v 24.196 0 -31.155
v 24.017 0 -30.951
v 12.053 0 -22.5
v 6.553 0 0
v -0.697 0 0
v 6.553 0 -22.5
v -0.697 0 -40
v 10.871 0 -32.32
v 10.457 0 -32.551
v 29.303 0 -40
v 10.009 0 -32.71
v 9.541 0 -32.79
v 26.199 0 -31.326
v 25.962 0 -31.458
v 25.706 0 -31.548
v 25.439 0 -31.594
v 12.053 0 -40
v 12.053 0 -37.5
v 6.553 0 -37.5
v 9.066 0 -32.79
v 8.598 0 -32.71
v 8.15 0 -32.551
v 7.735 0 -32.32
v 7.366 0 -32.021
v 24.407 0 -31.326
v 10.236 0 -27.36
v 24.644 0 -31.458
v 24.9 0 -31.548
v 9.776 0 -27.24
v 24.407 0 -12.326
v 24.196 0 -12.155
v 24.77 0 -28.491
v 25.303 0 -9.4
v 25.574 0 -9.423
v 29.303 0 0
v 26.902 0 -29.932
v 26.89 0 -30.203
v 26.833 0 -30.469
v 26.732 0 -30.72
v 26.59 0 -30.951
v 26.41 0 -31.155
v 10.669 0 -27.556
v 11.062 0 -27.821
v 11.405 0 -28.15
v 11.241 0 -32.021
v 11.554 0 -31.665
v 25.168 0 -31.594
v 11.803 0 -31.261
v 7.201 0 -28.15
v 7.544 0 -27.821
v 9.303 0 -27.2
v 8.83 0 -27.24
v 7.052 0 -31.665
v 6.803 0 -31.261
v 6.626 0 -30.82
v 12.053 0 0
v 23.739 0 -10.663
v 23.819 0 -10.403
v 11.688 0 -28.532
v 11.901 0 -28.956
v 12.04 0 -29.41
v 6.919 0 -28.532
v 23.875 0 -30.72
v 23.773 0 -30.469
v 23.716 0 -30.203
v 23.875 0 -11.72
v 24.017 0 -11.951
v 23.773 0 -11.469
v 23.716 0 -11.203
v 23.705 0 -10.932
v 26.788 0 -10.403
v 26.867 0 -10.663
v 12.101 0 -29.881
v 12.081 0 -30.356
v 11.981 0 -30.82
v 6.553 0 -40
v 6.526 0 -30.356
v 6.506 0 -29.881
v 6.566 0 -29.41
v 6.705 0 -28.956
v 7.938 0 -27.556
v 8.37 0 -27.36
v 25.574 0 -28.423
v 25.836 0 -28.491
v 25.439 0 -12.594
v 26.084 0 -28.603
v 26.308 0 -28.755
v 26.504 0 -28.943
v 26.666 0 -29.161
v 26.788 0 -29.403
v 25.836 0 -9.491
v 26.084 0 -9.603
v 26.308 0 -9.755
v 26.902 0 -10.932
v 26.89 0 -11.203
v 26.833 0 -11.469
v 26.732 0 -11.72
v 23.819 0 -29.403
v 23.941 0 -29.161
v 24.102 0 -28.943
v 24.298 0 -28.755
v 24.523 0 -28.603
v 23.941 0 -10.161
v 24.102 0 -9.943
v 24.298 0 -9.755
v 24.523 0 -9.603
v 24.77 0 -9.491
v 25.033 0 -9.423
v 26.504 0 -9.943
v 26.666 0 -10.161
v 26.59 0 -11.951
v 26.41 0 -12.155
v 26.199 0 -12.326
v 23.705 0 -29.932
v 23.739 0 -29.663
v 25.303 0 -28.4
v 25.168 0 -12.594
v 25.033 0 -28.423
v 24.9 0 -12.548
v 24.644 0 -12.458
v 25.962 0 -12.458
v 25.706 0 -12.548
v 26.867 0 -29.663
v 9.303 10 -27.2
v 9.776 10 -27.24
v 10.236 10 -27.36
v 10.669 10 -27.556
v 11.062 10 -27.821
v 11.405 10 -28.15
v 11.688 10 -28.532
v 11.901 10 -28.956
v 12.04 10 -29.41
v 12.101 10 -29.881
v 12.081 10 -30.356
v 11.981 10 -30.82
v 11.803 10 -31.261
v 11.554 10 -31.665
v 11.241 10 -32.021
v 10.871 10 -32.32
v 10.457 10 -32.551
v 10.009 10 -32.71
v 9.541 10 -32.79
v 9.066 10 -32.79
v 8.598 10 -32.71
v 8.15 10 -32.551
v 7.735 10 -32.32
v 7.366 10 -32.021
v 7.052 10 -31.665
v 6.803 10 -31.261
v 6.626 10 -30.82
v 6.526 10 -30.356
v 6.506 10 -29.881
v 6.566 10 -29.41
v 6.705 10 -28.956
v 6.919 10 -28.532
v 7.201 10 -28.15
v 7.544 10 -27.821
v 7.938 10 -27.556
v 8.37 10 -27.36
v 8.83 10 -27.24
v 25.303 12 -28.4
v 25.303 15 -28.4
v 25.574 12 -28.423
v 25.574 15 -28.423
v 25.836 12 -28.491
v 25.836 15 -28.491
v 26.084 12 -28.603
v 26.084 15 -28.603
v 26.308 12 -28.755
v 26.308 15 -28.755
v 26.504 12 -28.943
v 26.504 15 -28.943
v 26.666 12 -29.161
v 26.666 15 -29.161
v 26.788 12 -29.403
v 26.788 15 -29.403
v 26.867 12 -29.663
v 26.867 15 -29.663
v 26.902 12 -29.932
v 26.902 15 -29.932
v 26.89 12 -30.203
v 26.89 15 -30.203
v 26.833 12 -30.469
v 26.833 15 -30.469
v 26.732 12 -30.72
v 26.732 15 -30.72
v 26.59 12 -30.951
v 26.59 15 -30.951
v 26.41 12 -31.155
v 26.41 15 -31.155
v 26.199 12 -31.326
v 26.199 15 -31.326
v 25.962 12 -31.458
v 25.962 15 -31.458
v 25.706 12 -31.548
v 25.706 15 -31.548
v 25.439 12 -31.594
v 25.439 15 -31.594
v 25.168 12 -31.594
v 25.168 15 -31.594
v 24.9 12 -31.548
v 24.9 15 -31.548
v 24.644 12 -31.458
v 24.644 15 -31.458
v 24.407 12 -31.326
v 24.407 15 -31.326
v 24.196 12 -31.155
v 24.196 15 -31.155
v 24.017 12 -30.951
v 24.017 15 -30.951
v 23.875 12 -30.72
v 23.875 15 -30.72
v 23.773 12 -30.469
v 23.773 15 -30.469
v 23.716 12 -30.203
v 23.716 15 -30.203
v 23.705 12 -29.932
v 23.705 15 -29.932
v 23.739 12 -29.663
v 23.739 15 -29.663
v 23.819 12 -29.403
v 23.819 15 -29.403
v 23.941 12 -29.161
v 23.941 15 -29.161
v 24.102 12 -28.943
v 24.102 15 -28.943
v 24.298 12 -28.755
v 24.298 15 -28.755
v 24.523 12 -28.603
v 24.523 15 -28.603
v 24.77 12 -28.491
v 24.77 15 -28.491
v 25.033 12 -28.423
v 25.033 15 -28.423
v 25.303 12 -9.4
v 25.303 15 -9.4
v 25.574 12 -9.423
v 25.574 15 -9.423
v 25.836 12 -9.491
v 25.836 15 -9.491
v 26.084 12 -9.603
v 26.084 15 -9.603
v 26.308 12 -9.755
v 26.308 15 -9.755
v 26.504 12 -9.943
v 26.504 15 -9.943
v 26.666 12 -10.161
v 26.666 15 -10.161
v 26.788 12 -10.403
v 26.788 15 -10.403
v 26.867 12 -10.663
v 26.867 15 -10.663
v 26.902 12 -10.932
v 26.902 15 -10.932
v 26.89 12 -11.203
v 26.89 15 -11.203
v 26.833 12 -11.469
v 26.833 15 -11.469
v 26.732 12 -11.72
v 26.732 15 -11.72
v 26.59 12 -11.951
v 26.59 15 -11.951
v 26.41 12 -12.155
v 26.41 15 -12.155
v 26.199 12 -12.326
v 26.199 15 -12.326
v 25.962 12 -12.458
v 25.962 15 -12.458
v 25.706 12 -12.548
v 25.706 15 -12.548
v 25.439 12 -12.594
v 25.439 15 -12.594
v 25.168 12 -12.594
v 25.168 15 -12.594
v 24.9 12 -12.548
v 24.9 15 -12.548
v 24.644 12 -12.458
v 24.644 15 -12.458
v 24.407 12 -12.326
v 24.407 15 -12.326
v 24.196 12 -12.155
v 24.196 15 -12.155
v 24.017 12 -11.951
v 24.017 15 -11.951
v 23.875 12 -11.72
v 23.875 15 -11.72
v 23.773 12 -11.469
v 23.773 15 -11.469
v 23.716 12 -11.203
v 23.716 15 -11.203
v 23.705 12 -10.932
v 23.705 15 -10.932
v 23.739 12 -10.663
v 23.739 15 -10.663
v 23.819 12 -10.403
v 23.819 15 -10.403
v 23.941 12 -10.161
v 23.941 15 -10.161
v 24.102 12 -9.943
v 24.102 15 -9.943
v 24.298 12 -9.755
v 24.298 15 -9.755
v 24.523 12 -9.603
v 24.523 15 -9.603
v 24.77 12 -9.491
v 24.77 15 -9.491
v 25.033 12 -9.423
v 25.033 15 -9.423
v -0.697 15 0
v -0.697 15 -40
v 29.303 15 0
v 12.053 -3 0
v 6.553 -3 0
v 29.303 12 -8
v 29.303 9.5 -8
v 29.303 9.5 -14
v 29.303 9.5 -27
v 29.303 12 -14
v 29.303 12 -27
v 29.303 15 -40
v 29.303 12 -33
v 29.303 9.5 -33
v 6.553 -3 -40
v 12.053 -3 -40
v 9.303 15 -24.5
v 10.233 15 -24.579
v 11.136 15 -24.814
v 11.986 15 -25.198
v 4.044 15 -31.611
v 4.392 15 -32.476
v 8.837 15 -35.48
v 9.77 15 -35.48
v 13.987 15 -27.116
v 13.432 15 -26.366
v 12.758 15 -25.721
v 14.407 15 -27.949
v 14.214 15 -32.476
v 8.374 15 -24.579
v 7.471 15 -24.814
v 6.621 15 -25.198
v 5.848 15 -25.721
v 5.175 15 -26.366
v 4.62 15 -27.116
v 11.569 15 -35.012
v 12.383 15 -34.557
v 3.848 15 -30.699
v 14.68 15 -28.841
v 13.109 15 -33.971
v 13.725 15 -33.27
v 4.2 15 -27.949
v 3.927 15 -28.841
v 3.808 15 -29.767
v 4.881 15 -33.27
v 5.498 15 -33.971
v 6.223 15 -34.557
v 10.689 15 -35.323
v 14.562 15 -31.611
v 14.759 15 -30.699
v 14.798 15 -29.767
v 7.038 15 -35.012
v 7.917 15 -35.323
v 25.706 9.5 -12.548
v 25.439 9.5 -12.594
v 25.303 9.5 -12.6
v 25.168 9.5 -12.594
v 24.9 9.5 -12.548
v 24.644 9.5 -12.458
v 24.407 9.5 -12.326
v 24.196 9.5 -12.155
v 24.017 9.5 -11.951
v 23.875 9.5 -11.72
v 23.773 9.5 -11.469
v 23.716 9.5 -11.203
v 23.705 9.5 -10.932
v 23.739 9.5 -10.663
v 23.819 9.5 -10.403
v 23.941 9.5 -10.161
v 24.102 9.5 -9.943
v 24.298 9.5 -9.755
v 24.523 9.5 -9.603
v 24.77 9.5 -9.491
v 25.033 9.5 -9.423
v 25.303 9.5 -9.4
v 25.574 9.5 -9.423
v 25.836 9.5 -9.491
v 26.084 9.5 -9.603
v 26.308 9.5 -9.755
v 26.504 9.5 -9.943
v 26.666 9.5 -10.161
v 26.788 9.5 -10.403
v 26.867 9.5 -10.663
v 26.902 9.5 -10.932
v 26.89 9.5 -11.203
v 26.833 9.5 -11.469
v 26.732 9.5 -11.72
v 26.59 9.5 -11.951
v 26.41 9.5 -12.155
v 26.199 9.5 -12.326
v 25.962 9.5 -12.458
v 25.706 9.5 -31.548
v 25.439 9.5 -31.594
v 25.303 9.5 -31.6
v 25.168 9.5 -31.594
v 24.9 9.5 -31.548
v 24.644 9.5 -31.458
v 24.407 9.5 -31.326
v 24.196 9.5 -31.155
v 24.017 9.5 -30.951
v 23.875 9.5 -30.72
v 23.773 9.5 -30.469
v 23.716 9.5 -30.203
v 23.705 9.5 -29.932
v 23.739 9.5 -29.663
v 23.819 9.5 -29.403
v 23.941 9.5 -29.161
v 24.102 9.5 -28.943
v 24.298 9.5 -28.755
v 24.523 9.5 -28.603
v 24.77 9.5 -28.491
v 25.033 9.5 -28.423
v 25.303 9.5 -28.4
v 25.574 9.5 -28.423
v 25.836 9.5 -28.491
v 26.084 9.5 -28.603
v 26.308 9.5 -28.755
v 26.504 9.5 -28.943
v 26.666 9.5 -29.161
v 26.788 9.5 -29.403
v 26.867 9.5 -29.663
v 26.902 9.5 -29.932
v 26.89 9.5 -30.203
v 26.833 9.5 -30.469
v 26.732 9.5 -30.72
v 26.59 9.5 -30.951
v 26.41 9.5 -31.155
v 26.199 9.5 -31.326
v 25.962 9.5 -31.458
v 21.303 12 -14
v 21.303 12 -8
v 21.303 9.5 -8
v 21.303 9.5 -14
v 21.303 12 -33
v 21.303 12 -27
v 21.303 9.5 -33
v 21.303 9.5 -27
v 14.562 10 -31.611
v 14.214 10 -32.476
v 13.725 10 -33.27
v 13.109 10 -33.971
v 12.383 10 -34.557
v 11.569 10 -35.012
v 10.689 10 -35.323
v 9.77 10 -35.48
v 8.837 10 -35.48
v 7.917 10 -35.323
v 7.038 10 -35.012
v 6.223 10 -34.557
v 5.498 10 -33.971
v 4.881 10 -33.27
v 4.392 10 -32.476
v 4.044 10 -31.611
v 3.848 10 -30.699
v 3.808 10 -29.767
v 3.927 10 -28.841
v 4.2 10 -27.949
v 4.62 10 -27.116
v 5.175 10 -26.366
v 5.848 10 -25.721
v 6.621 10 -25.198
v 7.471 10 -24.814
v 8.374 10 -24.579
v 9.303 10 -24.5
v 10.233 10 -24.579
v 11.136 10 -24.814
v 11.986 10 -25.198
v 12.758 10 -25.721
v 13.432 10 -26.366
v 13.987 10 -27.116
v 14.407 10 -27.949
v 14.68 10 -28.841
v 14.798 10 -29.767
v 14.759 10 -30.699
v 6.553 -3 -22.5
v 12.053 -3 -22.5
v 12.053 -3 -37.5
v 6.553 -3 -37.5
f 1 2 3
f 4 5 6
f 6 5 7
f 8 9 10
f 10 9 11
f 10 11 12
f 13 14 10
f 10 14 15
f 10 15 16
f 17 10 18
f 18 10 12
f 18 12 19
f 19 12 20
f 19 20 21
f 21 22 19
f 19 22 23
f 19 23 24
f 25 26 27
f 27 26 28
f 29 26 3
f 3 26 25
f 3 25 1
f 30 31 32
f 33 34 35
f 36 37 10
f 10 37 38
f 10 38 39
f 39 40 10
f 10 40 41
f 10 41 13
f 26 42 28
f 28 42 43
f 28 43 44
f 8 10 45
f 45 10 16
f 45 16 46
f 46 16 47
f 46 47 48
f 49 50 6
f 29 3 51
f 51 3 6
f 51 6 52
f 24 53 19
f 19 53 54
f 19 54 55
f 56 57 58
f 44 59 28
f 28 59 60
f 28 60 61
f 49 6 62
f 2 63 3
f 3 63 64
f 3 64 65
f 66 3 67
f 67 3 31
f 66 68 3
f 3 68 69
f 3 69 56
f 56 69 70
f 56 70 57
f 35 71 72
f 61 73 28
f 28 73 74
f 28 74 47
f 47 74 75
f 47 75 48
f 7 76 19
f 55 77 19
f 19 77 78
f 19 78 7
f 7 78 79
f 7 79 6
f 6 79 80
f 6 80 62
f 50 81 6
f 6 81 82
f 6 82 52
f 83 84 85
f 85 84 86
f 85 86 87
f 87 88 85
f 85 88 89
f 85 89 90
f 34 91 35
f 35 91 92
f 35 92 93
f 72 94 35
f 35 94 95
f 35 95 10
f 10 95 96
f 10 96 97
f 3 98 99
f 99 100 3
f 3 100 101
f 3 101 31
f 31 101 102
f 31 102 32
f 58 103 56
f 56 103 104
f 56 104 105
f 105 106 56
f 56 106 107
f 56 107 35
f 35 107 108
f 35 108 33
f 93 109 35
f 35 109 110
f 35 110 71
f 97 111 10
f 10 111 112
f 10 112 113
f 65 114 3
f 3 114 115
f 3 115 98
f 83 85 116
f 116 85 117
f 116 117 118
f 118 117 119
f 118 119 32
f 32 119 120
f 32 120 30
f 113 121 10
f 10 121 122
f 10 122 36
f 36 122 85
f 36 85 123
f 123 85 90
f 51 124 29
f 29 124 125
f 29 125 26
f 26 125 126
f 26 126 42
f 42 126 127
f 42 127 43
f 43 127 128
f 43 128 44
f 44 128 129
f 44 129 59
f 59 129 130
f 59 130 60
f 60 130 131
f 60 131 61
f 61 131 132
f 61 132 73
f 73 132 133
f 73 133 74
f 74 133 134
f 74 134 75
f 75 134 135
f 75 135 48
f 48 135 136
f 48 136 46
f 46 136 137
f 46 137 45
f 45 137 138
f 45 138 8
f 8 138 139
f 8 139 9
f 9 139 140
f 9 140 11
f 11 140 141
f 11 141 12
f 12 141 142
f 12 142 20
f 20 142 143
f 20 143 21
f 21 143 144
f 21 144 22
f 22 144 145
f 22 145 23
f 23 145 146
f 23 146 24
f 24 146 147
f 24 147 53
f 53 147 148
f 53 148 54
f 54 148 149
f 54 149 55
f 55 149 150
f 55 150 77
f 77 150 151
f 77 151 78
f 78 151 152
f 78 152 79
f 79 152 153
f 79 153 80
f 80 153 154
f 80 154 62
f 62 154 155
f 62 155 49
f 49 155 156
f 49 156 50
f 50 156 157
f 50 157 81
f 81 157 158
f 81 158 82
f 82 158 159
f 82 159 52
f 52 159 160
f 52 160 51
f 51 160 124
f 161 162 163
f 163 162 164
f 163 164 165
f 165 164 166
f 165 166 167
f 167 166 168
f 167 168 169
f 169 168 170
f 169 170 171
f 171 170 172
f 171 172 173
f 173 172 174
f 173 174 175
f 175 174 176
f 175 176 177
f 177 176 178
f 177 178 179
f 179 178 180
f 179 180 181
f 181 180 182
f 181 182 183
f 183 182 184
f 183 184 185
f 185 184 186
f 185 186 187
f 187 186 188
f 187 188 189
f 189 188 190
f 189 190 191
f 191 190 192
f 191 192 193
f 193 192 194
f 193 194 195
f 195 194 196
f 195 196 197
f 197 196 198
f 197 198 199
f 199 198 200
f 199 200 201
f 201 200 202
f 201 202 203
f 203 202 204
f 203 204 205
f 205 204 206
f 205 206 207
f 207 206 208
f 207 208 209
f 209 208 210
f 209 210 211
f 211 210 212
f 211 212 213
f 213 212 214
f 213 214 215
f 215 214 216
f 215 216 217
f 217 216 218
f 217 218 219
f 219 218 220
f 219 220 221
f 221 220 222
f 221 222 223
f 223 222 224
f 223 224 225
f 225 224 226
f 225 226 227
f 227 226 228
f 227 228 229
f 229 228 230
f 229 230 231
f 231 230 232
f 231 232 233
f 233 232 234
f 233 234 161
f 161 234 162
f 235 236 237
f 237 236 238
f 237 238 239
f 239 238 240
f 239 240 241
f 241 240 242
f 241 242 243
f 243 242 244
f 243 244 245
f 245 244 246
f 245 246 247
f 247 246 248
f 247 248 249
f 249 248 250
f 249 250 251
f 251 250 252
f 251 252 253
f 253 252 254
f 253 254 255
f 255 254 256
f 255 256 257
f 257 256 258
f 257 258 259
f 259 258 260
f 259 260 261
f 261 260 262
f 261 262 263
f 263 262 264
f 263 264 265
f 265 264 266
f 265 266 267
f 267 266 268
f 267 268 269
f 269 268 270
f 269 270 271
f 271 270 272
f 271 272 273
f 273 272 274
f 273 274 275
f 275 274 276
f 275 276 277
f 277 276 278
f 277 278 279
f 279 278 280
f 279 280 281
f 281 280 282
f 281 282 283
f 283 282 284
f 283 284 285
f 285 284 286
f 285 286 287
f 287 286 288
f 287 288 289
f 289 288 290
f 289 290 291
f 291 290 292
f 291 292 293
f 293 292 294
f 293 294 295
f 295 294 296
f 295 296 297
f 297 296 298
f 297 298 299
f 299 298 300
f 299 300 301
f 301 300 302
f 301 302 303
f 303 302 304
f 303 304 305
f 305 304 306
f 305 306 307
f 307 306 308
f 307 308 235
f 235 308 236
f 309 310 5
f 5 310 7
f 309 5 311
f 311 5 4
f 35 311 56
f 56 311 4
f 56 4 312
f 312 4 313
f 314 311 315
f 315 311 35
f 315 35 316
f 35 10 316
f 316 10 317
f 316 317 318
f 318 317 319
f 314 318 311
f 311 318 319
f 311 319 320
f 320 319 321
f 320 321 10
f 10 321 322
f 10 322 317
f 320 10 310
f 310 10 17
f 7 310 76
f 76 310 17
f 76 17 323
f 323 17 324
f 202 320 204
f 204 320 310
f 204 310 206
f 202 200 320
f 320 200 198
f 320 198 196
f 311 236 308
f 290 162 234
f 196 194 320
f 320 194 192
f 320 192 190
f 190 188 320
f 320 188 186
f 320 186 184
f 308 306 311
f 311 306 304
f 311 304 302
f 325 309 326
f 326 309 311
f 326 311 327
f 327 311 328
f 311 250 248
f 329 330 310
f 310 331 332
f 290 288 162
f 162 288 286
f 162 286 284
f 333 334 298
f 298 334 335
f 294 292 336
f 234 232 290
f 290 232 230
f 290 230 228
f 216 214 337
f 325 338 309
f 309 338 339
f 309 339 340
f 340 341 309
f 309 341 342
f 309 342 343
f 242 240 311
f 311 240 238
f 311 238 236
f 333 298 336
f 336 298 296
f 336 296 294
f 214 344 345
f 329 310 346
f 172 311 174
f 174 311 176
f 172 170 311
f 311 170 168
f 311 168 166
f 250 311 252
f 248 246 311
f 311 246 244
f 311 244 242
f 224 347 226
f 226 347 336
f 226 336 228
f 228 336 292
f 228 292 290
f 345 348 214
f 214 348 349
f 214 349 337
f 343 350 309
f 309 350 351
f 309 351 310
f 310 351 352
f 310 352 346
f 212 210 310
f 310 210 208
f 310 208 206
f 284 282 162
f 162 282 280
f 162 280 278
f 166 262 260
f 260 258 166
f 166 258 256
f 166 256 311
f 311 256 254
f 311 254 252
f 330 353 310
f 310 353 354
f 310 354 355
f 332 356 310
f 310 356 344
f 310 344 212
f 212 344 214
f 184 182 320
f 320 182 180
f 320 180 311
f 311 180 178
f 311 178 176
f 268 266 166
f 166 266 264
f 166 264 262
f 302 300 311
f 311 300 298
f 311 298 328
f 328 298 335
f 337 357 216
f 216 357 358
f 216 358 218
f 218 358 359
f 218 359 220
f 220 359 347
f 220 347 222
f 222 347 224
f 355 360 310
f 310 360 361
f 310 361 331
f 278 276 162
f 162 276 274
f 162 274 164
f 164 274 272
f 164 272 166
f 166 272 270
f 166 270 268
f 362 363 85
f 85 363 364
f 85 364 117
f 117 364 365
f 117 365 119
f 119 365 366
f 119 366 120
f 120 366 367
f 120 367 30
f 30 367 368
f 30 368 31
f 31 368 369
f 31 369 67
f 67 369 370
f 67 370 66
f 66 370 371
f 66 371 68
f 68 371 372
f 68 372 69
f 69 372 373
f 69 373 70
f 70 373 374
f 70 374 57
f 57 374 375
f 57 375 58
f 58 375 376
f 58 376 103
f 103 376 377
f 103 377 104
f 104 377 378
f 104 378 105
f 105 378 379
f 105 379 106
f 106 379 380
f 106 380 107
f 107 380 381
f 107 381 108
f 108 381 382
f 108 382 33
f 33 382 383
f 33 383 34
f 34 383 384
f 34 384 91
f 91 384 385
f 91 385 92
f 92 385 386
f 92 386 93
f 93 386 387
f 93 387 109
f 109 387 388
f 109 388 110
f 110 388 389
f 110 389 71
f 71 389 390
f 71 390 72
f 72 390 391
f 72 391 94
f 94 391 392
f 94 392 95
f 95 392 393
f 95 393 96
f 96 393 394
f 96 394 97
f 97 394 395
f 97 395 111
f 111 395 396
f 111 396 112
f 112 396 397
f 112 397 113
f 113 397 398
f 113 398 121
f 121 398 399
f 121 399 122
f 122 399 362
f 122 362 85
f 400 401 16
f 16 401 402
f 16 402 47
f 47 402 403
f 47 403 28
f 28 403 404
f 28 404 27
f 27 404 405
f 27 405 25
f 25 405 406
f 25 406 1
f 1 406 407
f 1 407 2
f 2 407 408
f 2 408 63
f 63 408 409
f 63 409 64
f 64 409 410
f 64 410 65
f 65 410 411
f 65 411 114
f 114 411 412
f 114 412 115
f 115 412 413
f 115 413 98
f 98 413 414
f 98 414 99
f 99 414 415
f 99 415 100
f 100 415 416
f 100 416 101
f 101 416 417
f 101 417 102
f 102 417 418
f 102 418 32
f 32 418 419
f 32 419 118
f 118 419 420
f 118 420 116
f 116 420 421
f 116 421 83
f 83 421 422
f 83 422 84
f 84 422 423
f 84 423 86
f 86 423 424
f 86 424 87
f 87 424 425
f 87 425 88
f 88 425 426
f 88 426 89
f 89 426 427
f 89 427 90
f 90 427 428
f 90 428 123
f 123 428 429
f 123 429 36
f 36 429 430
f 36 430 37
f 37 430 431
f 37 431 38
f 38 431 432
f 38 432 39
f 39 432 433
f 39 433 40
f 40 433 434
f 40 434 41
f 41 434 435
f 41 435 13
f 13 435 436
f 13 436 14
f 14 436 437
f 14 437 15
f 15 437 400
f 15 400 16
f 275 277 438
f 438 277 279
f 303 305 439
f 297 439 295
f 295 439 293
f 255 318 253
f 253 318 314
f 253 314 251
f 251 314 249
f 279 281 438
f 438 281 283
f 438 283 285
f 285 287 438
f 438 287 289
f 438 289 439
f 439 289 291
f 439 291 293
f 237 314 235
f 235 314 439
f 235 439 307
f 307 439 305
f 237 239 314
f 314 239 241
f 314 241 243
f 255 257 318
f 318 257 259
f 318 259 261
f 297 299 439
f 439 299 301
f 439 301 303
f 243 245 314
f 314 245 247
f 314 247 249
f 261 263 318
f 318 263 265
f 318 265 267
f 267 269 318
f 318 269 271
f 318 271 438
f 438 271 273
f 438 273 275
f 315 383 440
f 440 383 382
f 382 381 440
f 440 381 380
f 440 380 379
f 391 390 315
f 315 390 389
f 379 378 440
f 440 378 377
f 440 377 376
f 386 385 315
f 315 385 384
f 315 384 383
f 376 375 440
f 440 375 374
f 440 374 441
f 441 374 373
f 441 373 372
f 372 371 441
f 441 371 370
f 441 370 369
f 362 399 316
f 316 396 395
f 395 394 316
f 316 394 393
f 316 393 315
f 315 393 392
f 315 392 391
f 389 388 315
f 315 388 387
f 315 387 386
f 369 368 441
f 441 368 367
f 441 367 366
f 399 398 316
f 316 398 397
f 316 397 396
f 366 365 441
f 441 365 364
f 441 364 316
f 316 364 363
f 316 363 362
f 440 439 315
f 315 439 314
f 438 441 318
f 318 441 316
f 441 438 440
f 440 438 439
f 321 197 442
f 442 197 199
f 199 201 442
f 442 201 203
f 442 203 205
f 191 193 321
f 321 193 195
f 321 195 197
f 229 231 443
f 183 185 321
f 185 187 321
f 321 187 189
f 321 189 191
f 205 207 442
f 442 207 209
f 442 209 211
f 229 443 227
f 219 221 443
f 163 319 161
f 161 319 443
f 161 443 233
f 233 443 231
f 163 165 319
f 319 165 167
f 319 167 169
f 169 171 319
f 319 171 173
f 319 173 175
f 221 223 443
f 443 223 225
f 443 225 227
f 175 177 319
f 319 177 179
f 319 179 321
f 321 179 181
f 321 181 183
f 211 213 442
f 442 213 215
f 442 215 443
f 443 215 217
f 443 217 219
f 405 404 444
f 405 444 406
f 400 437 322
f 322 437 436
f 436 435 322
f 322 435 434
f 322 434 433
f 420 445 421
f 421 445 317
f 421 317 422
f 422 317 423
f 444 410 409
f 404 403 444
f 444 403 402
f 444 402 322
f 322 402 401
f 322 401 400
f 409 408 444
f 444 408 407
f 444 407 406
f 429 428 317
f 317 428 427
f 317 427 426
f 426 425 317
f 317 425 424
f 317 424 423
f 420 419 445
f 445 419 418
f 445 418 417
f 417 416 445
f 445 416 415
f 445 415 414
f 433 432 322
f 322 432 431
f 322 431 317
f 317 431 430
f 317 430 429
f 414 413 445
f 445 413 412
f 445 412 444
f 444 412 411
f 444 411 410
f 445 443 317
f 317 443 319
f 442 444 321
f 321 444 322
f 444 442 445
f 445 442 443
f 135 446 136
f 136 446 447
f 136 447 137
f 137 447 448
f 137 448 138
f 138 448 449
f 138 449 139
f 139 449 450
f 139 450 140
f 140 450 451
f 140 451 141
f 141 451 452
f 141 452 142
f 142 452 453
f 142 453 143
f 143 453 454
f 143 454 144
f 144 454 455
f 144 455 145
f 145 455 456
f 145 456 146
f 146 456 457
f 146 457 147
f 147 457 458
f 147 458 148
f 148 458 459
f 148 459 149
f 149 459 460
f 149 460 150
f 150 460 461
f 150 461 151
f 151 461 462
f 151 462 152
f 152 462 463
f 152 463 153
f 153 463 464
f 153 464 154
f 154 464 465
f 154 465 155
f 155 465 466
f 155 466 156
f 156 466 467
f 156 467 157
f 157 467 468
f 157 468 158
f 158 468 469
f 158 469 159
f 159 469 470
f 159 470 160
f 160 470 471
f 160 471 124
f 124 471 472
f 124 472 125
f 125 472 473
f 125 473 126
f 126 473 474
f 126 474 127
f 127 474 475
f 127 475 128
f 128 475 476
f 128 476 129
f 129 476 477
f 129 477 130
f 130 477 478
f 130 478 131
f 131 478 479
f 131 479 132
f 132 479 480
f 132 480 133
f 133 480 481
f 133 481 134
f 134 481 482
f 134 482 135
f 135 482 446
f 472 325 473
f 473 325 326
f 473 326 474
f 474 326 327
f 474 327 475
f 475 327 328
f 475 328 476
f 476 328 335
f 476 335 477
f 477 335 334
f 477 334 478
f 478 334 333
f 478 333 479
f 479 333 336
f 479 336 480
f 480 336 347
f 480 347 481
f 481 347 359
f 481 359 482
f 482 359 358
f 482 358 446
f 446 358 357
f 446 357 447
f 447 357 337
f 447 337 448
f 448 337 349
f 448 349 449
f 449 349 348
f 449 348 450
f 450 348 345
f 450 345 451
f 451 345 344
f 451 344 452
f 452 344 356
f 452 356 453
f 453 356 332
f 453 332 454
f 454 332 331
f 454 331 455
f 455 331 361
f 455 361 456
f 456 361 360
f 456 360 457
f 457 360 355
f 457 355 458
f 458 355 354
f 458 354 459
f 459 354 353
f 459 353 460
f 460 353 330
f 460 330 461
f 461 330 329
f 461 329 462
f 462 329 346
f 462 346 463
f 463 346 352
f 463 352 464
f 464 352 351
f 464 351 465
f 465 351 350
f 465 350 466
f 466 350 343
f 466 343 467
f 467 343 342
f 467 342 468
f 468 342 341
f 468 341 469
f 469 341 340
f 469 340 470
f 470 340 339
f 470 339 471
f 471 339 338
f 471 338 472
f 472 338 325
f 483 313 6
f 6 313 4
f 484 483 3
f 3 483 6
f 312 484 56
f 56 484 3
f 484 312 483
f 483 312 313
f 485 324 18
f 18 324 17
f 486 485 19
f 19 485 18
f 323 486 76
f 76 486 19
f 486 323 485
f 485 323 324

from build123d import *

# Parameters (mm, degrees)
SKETCH1_W           = 30
SKETCH1_H           = 40
BOSS_EXTRUDE1_DEPTH = 15
SKETCH5_R           = 1.6
CUT_EXTRUDE3_DEPTH  = 16
SKETCH6_W           = 6
SKETCH6_H           = 2.5
CUT_EXTRUDE4_DEPTH  = 8
SKETCH10_R          = 2.8
CUT_EXTRUDE7_DEPTH  = 16
SKETCH11_R          = 5.5
CUT_EXTRUDE8_DEPTH  = 5
SKETCH12_W          = 5.5
SKETCH12_H          = 22.5
SKETCH12_H_2        = 2.5
BOSS_EXTRUDE7_DEPTH = 3


with BuildPart() as part:
    # Sketch1 → Boss-Extrude1 (new body)
    with BuildSketch(Plane(origin=(0, 0, 0), x_dir=(1, 0, 0), z_dir=(0, 1, 0))):
        with Locations((14.30324178, 20)):
            Rectangle(SKETCH1_W, SKETCH1_H)
    extrude(amount=BOSS_EXTRUDE1_DEPTH)

    # Sketch5 → Cut-Extrude3 (cut, through all)
    with BuildSketch(Plane(origin=(0, 15, 0), x_dir=(1, 0, 0), z_dir=(0, 1, 0))):
        with Locations((25.30324178, 11)):
            Circle(SKETCH5_R)
        with Locations((25.30324178, 30)):
            Circle(SKETCH5_R)
    extrude(amount=-CUT_EXTRUDE3_DEPTH, mode=Mode.SUBTRACT)

    # Sketch6 → Cut-Extrude4 (cut)
    with BuildSketch(Plane(origin=(29.30324178, 0, 0), x_dir=(0, 0, -1), z_dir=(1, 0, 0))):
        with Locations((11, 10.75)):
            Rectangle(SKETCH6_W, SKETCH6_H)
        with Locations((30, 10.75)):
            Rectangle(SKETCH6_W, SKETCH6_H)
    extrude(amount=-CUT_EXTRUDE4_DEPTH, mode=Mode.SUBTRACT)

    # Sketch10 → Cut-Extrude7 (cut, through all)
    with BuildSketch(Plane(origin=(0, 15, 0), x_dir=(1, 0, 0), z_dir=(0, 1, 0))):
        with Locations((9.30324178, 30)):
            Circle(SKETCH10_R)
    extrude(amount=-CUT_EXTRUDE7_DEPTH, mode=Mode.SUBTRACT)

    # Sketch11 → Cut-Extrude8 (cut)
    with BuildSketch(Plane(origin=(0, 15, 0), x_dir=(1, 0, 0), z_dir=(0, 1, 0))):
        with Locations((9.30324178, 30)):
            Circle(SKETCH11_R)
    extrude(amount=-CUT_EXTRUDE8_DEPTH, mode=Mode.SUBTRACT)

    # Sketch12 → Boss-Extrude7 (add)
    with BuildSketch(Plane.XZ):
        with Locations((9.30324178, -11.25)):
            Rectangle(SKETCH12_W, SKETCH12_H)
        with Locations((9.30324178, -38.75)):
            Rectangle(SKETCH12_W, SKETCH12_H_2)
    extrude(amount=BOSS_EXTRUDE7_DEPTH)


solid = part.part
